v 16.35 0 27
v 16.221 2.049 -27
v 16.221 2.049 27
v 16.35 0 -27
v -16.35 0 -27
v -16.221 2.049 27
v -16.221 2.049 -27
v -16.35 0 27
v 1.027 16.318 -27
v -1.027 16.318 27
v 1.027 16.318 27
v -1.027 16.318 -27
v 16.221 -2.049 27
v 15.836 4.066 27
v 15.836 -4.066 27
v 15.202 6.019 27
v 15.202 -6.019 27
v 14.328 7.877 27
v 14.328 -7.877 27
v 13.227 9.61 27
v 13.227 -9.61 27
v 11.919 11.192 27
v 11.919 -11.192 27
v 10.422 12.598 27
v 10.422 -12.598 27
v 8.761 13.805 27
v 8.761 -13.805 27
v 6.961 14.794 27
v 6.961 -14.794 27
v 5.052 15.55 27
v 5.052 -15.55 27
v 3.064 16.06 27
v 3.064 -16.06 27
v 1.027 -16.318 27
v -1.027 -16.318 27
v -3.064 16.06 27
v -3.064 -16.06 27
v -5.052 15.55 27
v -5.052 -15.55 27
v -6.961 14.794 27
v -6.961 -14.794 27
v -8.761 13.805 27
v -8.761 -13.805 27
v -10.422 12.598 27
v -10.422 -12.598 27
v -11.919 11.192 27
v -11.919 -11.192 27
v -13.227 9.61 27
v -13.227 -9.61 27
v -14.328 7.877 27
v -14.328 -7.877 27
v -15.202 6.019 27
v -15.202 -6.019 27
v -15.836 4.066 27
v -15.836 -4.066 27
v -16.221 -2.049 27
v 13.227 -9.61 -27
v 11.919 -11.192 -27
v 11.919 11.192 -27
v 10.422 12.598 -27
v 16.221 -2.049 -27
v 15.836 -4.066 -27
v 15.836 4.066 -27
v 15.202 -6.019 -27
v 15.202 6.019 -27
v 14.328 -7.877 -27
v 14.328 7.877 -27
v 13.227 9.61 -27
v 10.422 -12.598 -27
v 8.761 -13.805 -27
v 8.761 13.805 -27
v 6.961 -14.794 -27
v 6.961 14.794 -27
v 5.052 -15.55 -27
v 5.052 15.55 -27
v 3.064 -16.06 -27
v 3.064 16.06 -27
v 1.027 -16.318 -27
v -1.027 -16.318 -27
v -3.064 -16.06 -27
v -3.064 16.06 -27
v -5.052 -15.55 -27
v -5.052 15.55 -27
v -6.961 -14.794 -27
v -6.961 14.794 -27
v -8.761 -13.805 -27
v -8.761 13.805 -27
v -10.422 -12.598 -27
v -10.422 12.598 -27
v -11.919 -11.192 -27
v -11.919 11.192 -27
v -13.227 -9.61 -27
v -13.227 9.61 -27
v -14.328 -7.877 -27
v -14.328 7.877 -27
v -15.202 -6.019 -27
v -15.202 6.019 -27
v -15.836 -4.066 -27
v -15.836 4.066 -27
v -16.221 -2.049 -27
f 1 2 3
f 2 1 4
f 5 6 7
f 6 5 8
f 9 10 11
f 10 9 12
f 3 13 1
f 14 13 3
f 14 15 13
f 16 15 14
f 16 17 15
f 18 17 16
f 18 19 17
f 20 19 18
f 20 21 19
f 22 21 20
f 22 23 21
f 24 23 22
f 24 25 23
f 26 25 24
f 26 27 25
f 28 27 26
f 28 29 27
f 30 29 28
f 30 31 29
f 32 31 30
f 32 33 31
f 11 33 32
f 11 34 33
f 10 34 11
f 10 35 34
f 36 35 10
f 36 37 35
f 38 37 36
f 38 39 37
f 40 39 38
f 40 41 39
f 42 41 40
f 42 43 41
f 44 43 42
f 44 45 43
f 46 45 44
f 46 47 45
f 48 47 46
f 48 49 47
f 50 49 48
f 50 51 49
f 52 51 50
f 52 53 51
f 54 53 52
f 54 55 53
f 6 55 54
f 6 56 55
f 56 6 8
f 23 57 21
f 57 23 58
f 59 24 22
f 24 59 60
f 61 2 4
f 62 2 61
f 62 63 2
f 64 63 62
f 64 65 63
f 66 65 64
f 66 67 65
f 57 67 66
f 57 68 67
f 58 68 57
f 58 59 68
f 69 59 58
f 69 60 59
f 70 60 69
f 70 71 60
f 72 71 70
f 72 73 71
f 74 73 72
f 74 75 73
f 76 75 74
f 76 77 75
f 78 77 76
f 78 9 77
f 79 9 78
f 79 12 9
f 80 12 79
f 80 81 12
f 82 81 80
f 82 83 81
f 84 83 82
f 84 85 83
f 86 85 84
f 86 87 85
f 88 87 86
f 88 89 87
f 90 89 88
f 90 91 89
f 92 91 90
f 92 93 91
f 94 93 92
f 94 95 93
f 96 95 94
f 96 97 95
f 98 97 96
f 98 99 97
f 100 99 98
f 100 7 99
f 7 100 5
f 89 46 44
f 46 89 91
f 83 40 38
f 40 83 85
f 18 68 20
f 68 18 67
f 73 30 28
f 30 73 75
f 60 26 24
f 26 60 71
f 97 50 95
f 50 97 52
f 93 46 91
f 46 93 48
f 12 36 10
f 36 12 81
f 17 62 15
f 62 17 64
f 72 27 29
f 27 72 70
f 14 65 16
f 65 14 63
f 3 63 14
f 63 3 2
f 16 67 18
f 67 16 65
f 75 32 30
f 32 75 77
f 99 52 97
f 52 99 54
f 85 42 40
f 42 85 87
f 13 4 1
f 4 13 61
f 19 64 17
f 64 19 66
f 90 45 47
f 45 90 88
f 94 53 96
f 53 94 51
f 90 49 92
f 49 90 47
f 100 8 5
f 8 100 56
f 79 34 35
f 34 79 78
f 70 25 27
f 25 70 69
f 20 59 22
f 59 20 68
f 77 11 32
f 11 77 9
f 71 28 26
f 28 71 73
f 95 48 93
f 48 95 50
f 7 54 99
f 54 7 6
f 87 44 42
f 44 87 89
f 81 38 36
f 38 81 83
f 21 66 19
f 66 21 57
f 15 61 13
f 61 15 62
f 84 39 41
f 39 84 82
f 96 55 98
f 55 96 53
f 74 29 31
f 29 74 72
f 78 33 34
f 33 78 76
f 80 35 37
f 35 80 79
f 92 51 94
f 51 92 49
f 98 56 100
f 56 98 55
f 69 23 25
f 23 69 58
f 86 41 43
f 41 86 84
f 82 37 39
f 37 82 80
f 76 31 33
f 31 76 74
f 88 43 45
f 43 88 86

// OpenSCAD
$fn = 50;


difference() {
	union() {
		translate(v = [0, 0, -27.0000000000]) {
			cylinder(h = 54, r = 16.3500000000);
		}
	}
	union() {
		translate(v = [0, 0, -100.0000000000]) {
			cylinder(h = 200, r = 0);
		}
	}
}
